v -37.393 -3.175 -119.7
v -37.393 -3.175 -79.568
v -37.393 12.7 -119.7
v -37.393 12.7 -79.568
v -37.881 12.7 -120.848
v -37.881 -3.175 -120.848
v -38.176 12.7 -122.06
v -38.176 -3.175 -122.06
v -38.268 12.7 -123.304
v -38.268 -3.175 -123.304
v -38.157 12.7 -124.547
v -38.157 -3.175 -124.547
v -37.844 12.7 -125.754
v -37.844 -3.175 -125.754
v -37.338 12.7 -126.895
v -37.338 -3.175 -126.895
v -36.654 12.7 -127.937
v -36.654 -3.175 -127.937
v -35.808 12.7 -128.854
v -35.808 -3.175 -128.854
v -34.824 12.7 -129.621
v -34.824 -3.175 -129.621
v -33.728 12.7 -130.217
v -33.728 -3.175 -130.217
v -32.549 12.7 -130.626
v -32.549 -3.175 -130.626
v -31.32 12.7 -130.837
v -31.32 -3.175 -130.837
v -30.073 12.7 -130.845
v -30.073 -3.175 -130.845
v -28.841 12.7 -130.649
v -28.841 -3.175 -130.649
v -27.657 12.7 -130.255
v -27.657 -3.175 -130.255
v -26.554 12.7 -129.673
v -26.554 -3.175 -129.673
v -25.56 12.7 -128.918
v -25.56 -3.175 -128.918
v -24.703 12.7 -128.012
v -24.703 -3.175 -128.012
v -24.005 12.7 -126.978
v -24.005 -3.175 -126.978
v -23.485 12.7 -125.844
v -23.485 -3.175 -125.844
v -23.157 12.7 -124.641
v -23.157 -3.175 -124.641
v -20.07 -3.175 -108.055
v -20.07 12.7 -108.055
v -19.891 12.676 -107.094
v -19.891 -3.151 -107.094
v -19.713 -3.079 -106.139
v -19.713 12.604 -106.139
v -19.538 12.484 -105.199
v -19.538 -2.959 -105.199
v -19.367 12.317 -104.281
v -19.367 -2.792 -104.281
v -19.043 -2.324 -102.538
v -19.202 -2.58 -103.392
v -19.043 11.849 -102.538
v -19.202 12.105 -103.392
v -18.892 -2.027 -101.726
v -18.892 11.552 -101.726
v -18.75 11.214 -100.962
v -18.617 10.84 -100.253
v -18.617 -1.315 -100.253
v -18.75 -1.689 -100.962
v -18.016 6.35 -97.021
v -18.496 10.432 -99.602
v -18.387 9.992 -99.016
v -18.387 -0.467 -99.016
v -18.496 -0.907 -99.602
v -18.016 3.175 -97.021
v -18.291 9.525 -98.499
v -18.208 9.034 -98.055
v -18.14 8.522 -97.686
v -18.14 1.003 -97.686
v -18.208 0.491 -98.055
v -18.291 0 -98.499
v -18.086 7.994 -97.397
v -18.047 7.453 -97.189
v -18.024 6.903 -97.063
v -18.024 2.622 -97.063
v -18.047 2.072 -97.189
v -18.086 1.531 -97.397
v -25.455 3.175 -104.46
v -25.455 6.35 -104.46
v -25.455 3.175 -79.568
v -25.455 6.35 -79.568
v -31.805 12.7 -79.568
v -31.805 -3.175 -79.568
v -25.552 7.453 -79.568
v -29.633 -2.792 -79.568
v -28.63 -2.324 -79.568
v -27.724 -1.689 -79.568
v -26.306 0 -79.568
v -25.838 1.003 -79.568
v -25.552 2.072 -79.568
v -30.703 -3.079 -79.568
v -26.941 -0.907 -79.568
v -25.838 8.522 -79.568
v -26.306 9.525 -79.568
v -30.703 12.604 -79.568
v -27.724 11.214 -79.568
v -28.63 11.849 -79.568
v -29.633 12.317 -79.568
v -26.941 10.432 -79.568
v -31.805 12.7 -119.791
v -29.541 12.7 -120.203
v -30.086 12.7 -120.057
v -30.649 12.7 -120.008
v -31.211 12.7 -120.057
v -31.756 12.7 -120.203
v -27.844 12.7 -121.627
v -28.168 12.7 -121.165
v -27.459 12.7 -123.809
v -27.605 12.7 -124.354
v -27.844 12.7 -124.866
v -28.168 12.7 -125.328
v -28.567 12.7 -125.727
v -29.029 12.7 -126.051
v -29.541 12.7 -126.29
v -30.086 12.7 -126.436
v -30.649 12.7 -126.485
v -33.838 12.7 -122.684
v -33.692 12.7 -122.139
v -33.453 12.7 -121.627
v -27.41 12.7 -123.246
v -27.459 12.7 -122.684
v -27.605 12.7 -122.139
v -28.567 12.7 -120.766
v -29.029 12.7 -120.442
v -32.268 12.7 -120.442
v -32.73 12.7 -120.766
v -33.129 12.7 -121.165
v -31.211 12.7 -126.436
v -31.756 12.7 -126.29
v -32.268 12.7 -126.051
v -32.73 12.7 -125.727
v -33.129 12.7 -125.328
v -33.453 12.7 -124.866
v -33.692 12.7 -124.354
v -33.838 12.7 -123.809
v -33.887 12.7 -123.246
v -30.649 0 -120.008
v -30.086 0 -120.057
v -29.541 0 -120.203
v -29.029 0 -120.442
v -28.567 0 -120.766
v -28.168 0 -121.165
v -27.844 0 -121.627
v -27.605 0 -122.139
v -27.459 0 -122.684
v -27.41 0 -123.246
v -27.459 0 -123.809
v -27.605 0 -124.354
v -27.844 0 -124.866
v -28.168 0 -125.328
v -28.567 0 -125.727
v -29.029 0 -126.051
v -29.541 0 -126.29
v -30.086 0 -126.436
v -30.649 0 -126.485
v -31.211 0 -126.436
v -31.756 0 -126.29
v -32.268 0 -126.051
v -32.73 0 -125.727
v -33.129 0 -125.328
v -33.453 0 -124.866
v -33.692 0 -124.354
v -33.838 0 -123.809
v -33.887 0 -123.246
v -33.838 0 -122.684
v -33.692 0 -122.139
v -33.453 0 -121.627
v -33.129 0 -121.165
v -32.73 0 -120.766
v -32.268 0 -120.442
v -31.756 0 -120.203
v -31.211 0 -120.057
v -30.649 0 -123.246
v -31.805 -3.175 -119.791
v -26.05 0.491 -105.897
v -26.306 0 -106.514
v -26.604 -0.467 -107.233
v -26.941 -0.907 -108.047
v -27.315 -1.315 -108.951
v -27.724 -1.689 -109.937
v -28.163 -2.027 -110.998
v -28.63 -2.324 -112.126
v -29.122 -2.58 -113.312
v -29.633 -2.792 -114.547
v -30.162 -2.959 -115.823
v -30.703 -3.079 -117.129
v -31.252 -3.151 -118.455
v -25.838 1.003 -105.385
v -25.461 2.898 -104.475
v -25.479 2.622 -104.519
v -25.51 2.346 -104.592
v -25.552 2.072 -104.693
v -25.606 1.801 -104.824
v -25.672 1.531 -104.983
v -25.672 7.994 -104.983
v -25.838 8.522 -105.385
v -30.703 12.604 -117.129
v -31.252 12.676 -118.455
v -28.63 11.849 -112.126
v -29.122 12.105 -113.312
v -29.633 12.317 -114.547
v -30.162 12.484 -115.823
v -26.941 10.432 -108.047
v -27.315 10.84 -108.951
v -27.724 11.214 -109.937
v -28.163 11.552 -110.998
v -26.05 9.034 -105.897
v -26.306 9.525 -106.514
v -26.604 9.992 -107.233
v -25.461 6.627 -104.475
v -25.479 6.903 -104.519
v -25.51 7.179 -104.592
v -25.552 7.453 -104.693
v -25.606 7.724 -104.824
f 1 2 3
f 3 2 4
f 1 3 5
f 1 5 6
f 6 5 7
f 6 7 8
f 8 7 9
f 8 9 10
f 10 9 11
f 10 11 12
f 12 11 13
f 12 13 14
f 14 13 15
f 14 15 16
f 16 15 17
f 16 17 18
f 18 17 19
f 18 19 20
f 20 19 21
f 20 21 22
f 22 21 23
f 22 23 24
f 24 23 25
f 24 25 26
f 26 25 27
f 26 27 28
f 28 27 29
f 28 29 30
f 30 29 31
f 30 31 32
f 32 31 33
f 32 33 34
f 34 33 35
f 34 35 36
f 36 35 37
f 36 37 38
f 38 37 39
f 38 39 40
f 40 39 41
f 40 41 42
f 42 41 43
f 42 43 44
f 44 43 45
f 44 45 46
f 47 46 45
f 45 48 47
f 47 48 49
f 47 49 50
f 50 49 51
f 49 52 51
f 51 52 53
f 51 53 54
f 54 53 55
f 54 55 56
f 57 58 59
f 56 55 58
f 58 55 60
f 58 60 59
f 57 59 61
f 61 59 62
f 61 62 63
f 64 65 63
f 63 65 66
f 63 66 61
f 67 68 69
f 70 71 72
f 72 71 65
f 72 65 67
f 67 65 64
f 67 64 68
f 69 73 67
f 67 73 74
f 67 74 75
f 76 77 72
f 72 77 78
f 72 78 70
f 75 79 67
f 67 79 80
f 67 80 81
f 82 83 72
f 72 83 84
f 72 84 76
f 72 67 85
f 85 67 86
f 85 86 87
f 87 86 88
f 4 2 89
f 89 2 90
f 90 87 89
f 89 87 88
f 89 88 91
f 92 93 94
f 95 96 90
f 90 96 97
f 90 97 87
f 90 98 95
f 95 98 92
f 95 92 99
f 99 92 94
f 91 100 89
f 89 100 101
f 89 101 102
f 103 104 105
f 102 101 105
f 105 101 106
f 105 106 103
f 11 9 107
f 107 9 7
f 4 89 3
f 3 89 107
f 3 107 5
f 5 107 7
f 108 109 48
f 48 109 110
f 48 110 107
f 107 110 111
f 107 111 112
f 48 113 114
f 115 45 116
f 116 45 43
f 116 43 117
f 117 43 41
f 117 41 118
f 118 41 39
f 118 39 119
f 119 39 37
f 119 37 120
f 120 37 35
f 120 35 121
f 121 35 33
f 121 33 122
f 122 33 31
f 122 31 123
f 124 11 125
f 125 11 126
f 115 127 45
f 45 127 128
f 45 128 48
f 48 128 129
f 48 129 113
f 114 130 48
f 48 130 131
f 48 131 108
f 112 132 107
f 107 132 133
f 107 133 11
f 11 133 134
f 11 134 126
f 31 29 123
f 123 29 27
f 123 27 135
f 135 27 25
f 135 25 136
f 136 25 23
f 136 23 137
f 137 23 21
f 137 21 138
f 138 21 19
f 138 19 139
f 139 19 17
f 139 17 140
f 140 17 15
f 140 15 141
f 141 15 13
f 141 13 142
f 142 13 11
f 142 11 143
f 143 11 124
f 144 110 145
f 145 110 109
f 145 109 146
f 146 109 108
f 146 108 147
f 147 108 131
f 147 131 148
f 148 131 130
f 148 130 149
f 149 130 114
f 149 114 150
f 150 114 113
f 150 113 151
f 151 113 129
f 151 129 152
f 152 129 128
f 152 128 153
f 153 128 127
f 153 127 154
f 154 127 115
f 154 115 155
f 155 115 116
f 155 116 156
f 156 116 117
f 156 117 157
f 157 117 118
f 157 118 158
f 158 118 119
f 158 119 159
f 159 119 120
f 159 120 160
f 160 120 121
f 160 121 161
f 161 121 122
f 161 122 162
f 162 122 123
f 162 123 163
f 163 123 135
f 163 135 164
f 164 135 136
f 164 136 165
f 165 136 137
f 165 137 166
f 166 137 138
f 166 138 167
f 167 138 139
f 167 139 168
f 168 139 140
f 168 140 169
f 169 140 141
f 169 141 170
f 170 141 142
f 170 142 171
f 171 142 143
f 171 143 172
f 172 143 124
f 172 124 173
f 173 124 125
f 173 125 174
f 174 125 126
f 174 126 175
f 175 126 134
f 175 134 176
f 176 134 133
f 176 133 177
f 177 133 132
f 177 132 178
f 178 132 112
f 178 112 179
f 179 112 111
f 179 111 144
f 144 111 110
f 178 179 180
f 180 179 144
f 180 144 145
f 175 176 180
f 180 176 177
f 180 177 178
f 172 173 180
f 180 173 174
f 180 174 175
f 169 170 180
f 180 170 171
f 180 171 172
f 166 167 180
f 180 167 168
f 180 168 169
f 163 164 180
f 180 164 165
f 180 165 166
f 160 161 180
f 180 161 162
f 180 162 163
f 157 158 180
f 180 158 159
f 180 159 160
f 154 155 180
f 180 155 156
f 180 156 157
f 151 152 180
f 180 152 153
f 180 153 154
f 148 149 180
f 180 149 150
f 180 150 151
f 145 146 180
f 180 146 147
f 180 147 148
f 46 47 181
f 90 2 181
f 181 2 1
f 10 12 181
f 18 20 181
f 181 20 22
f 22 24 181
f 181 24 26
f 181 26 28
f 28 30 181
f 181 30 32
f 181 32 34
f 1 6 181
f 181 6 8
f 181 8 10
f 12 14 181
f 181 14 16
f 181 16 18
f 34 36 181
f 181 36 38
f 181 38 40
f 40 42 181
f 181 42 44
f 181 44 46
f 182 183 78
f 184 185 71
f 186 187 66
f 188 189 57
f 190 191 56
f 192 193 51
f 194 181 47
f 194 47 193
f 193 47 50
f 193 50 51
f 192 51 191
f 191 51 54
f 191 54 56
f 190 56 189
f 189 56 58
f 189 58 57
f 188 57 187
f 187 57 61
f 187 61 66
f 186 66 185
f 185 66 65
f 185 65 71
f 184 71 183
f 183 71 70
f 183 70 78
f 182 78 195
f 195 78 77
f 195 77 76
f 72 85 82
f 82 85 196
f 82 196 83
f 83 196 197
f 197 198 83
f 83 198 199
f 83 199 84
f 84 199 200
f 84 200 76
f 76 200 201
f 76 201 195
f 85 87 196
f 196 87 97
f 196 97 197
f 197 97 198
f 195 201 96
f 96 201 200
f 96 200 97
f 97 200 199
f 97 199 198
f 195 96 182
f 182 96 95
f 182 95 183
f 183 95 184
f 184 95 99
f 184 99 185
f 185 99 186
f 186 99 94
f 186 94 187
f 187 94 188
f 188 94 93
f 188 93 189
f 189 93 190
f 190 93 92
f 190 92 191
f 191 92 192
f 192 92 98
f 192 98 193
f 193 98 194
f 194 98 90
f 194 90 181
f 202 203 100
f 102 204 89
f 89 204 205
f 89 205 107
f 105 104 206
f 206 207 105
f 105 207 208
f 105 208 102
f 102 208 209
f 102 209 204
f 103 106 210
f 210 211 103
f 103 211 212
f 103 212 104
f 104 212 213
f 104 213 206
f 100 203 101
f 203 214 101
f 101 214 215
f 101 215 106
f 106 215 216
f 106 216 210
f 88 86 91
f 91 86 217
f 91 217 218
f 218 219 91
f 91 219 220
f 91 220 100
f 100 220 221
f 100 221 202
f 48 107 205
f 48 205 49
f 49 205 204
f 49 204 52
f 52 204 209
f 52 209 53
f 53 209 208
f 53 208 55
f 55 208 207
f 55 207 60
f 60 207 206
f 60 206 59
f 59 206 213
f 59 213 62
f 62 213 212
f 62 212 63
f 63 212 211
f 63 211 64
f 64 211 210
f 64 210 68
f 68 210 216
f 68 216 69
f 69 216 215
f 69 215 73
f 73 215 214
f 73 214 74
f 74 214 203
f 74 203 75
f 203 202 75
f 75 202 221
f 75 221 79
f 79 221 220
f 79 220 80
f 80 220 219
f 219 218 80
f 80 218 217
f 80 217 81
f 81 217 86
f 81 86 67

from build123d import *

# Parameters (mm, degrees)
STOCK_RATCHET_GEAR_LARGE_1_OUTLINE_R = 3.2385
STOCK_RATCHET_GEAR_LARGE_1_DEPTH     = 12.7
BOSS_EXTRUDE2_START                  = -15.875
BOSS_EXTRUDE2_DEPTH                  = 3.175
FILLET1_R                            = 6.35


# Read off the part's stored shape, not the designer's step: Stock-Ratchet Gear, Large-1
with BuildPart() as part:
    # Stock-Ratchet Gear, Large-1 outline → Stock-Ratchet Gear, Large-1 (new body)
    with BuildSketch(Plane(origin=(0, 0, 0), x_dir=(1, 0, 0), z_dir=(0, 1, 0))):
        with BuildLine():
            ThreePointArc((-23.157311364, 124.640869029), (-33.146905094, 130.445164573), (-37.393295868, 119.700398636))
            Line((-37.393295868, 119.700398636), (-37.393295868, 79.568398636))
            Line((-37.393295868, 79.568398636), (-25.455295868, 79.568398636))
            Line((-25.455295868, 79.568398636), (-25.455295868, 104.460398636))
            Line((-25.455295868, 104.460398636), (-18.015800251, 97.020903018))
            Line((-18.015800251, 97.020903018), (-23.157311364, 124.640869029))
        make_face()
        with Locations((-30.648620237, 123.246347117)):
            Circle(STOCK_RATCHET_GEAR_LARGE_1_OUTLINE_R, mode=Mode.SUBTRACT)
    extrude(amount=STOCK_RATCHET_GEAR_LARGE_1_DEPTH)

    # Sketch1 → Boss-Extrude2 (add)
    with BuildSketch(Plane(origin=(0, 12.7, 0), x_dir=(1, 0, 0), z_dir=(0, 1, 0)).offset(BOSS_EXTRUDE2_START)):
        with BuildLine():
            Line((-37.393295868, 119.700398636), (-37.393295868, 79.568398636))
            Line((-37.393295868, 79.568398636), (-25.455295868, 79.568398636))
            Line((-25.455295868, 79.568398636), (-25.455295868, 104.460398636))
            Line((-25.455295868, 104.460398636), (-18.015800251, 97.020903018))
            Line((-18.015800251, 97.020903018), (-23.157311364, 124.640869029))
            ThreePointArc((-23.157311364, 124.640869029), (-33.146905094, 130.445164573), (-37.393295868, 119.700398636))
        make_face()
    extrude(amount=BOSS_EXTRUDE2_DEPTH)

    # Fillet1
    # the kernel refuses this fillet: 6.35 mm, written as the material it takes off along each edge
    with BuildSketch(Plane(origin=(-36.68061602, -3.175, -115.685718787), x_dir=(0.7071067811865475, 0, -0.7071067811865475), z_dir=(0.7071067811865476, 0, 0.7071067811865476))) as fillet1_piece_1_section:
        with BuildLine():
            CenterArc((FILLET1_R, FILLET1_R), FILLET1_R, 180, 90)
            Line((0, FILLET1_R), (0, 0))
            Line((0, 0), (FILLET1_R, 0))
        make_face()
    fillet1_piece_1 = extrude(amount=42.2710356, mode=Mode.PRIVATE)
    fillet1_piece_1 = split(fillet1_piece_1, bisect_by=Plane(origin=(-25.455295868, -1.777167461, -96.72422015), z_dir=(1, 0, 0)), keep=Keep.TOP, mode=Mode.PRIVATE)
    add(fillet1_piece_1, mode=Mode.SUBTRACT)
    with BuildSketch(Plane(origin=(-25.455295868, -3.175, -63.693398636), x_dir=(-1, 0, 0), z_dir=(0, 0, -1))) as fillet1_piece_2_section:
        with BuildLine():
            CenterArc((FILLET1_R, FILLET1_R), FILLET1_R, 180, 90)
            Line((0, FILLET1_R), (0, 0))
            Line((0, 0), (FILLET1_R, 0))
        make_face()
    fillet1_piece_2 = extrude(amount=56.642, mode=Mode.PRIVATE)
    fillet1_piece_2 = split(fillet1_piece_2, bisect_by=Plane(origin=(-16.375055612, -1.763623306, -95.380158379), z_dir=(-0.7071067812340712, 0, 0.7071067811390238)), keep=Keep.TOP, mode=Mode.PRIVATE)
    add(fillet1_piece_2, mode=Mode.SUBTRACT)
    with BuildSketch(Plane(origin=(-36.680616019, 12.7, -115.685718788), x_dir=(0.7071067812340712, 0, -0.7071067811390238), z_dir=(0.7071067811390238, 0, 0.7071067812340712))) as fillet1_piece_3_section:
        with BuildLine():
            CenterArc((FILLET1_R, -FILLET1_R), FILLET1_R, 90, 90)
            Line((0, -FILLET1_R), (0, 0))
            Line((0, 0), (FILLET1_R, 0))
        make_face()
    fillet1_piece_3 = extrude(amount=42.271035599, mode=Mode.PRIVATE)
    fillet1_piece_3 = split(fillet1_piece_3, bisect_by=Plane(origin=(-25.455295868, 11.302167461, -96.72422015), z_dir=(1, 0, 0)), keep=Keep.TOP, mode=Mode.PRIVATE)
    add(fillet1_piece_3, mode=Mode.SUBTRACT)
    with BuildSketch(Plane(origin=(-25.455295868, 12.7, -63.693398636), x_dir=(-1, 0, 0), z_dir=(0, 0, -1))) as fillet1_piece_4_section:
        with BuildLine():
            CenterArc((FILLET1_R, -FILLET1_R), FILLET1_R, 90, 90)
            Line((0, -FILLET1_R), (0, 0))
            Line((0, 0), (FILLET1_R, 0))
        make_face()
    fillet1_piece_4 = extrude(amount=56.642, mode=Mode.PRIVATE)
    fillet1_piece_4 = split(fillet1_piece_4, bisect_by=Plane(origin=(-16.375055612, 11.288623306, -95.380158379), z_dir=(-0.7071067812340712, 0, 0.7071067811390238)), keep=Keep.TOP, mode=Mode.PRIVATE)
    add(fillet1_piece_4, mode=Mode.SUBTRACT)
    with BuildSketch(Plane(origin=(-25.455295868, -3.175, -63.693398636), x_dir=(-1, 0, 0), z_dir=(0, 0, -1))) as fillet1_piece_5a_section:
        with BuildLine():
            CenterArc((FILLET1_R, FILLET1_R), FILLET1_R, 180, 90)
            Line((0, FILLET1_R), (0, 0))
            Line((0, 0), (FILLET1_R, 0))
        make_face()
    fillet1_piece_5a = extrude(amount=56.642, mode=Mode.PRIVATE)
    fillet1_piece_5a = split(fillet1_piece_5a, bisect_by=Plane(origin=(-30.404898402, -1.660706588, -109.41000117), z_dir=(0.7071067812340712, 0, -0.7071067811390238)), keep=Keep.TOP, mode=Mode.PRIVATE)
    with BuildSketch(Plane(origin=(-36.68061602, -3.175, -115.685718787), x_dir=(0.7071067811865475, 0, -0.7071067811865475), z_dir=(0.7071067811865476, 0, 0.7071067811865476))) as fillet1_piece_5b_section:
        with BuildLine():
            CenterArc((FILLET1_R, FILLET1_R), FILLET1_R, 180, 90)
            Line((0, FILLET1_R), (0, 0))
            Line((0, 0), (FILLET1_R, 0))
        make_face()
    fillet1_piece_5b = extrude(amount=42.2710356, mode=Mode.PRIVATE)
    fillet1_piece_5b = split(fillet1_piece_5b, bisect_by=Plane(origin=(-25.455295868, -1.660706588, -111.460193667), z_dir=(-1, 0, 0)), keep=Keep.TOP, mode=Mode.PRIVATE)
    fillet1_piece_5 = fillet1_piece_5a & fillet1_piece_5b
    add(fillet1_piece_5, mode=Mode.SUBTRACT)
    with BuildSketch(Plane(origin=(-25.455295868, 12.7, -63.693398636), x_dir=(-1, 0, 0), z_dir=(0, 0, -1))) as fillet1_piece_6a_section:
        with BuildLine():
            CenterArc((FILLET1_R, -FILLET1_R), FILLET1_R, 90, 90)
            Line((0, -FILLET1_R), (0, 0))
            Line((0, 0), (FILLET1_R, 0))
        make_face()
    fillet1_piece_6a = extrude(amount=56.642, mode=Mode.PRIVATE)
    fillet1_piece_6a = split(fillet1_piece_6a, bisect_by=Plane(origin=(-30.404898402, 11.185706588, -109.41000117), z_dir=(0.7071067812340712, 0, -0.7071067811390238)), keep=Keep.TOP, mode=Mode.PRIVATE)
    with BuildSketch(Plane(origin=(-36.680616019, 12.7, -115.685718788), x_dir=(0.7071067812340712, 0, -0.7071067811390238), z_dir=(0.7071067811390238, 0, 0.7071067812340712))) as fillet1_piece_6b_section:
        with BuildLine():
            CenterArc((FILLET1_R, -FILLET1_R), FILLET1_R, 90, 90)
            Line((0, -FILLET1_R), (0, 0))
            Line((0, 0), (FILLET1_R, 0))
        make_face()
    fillet1_piece_6b = extrude(amount=42.271035599, mode=Mode.PRIVATE)
    fillet1_piece_6b = split(fillet1_piece_6b, bisect_by=Plane(origin=(-25.455295868, 11.185706588, -111.460193668), z_dir=(-1, 0, 0)), keep=Keep.TOP, mode=Mode.PRIVATE)
    fillet1_piece_6 = fillet1_piece_6a & fillet1_piece_6b
    add(fillet1_piece_6, mode=Mode.SUBTRACT)


solid = part.part
